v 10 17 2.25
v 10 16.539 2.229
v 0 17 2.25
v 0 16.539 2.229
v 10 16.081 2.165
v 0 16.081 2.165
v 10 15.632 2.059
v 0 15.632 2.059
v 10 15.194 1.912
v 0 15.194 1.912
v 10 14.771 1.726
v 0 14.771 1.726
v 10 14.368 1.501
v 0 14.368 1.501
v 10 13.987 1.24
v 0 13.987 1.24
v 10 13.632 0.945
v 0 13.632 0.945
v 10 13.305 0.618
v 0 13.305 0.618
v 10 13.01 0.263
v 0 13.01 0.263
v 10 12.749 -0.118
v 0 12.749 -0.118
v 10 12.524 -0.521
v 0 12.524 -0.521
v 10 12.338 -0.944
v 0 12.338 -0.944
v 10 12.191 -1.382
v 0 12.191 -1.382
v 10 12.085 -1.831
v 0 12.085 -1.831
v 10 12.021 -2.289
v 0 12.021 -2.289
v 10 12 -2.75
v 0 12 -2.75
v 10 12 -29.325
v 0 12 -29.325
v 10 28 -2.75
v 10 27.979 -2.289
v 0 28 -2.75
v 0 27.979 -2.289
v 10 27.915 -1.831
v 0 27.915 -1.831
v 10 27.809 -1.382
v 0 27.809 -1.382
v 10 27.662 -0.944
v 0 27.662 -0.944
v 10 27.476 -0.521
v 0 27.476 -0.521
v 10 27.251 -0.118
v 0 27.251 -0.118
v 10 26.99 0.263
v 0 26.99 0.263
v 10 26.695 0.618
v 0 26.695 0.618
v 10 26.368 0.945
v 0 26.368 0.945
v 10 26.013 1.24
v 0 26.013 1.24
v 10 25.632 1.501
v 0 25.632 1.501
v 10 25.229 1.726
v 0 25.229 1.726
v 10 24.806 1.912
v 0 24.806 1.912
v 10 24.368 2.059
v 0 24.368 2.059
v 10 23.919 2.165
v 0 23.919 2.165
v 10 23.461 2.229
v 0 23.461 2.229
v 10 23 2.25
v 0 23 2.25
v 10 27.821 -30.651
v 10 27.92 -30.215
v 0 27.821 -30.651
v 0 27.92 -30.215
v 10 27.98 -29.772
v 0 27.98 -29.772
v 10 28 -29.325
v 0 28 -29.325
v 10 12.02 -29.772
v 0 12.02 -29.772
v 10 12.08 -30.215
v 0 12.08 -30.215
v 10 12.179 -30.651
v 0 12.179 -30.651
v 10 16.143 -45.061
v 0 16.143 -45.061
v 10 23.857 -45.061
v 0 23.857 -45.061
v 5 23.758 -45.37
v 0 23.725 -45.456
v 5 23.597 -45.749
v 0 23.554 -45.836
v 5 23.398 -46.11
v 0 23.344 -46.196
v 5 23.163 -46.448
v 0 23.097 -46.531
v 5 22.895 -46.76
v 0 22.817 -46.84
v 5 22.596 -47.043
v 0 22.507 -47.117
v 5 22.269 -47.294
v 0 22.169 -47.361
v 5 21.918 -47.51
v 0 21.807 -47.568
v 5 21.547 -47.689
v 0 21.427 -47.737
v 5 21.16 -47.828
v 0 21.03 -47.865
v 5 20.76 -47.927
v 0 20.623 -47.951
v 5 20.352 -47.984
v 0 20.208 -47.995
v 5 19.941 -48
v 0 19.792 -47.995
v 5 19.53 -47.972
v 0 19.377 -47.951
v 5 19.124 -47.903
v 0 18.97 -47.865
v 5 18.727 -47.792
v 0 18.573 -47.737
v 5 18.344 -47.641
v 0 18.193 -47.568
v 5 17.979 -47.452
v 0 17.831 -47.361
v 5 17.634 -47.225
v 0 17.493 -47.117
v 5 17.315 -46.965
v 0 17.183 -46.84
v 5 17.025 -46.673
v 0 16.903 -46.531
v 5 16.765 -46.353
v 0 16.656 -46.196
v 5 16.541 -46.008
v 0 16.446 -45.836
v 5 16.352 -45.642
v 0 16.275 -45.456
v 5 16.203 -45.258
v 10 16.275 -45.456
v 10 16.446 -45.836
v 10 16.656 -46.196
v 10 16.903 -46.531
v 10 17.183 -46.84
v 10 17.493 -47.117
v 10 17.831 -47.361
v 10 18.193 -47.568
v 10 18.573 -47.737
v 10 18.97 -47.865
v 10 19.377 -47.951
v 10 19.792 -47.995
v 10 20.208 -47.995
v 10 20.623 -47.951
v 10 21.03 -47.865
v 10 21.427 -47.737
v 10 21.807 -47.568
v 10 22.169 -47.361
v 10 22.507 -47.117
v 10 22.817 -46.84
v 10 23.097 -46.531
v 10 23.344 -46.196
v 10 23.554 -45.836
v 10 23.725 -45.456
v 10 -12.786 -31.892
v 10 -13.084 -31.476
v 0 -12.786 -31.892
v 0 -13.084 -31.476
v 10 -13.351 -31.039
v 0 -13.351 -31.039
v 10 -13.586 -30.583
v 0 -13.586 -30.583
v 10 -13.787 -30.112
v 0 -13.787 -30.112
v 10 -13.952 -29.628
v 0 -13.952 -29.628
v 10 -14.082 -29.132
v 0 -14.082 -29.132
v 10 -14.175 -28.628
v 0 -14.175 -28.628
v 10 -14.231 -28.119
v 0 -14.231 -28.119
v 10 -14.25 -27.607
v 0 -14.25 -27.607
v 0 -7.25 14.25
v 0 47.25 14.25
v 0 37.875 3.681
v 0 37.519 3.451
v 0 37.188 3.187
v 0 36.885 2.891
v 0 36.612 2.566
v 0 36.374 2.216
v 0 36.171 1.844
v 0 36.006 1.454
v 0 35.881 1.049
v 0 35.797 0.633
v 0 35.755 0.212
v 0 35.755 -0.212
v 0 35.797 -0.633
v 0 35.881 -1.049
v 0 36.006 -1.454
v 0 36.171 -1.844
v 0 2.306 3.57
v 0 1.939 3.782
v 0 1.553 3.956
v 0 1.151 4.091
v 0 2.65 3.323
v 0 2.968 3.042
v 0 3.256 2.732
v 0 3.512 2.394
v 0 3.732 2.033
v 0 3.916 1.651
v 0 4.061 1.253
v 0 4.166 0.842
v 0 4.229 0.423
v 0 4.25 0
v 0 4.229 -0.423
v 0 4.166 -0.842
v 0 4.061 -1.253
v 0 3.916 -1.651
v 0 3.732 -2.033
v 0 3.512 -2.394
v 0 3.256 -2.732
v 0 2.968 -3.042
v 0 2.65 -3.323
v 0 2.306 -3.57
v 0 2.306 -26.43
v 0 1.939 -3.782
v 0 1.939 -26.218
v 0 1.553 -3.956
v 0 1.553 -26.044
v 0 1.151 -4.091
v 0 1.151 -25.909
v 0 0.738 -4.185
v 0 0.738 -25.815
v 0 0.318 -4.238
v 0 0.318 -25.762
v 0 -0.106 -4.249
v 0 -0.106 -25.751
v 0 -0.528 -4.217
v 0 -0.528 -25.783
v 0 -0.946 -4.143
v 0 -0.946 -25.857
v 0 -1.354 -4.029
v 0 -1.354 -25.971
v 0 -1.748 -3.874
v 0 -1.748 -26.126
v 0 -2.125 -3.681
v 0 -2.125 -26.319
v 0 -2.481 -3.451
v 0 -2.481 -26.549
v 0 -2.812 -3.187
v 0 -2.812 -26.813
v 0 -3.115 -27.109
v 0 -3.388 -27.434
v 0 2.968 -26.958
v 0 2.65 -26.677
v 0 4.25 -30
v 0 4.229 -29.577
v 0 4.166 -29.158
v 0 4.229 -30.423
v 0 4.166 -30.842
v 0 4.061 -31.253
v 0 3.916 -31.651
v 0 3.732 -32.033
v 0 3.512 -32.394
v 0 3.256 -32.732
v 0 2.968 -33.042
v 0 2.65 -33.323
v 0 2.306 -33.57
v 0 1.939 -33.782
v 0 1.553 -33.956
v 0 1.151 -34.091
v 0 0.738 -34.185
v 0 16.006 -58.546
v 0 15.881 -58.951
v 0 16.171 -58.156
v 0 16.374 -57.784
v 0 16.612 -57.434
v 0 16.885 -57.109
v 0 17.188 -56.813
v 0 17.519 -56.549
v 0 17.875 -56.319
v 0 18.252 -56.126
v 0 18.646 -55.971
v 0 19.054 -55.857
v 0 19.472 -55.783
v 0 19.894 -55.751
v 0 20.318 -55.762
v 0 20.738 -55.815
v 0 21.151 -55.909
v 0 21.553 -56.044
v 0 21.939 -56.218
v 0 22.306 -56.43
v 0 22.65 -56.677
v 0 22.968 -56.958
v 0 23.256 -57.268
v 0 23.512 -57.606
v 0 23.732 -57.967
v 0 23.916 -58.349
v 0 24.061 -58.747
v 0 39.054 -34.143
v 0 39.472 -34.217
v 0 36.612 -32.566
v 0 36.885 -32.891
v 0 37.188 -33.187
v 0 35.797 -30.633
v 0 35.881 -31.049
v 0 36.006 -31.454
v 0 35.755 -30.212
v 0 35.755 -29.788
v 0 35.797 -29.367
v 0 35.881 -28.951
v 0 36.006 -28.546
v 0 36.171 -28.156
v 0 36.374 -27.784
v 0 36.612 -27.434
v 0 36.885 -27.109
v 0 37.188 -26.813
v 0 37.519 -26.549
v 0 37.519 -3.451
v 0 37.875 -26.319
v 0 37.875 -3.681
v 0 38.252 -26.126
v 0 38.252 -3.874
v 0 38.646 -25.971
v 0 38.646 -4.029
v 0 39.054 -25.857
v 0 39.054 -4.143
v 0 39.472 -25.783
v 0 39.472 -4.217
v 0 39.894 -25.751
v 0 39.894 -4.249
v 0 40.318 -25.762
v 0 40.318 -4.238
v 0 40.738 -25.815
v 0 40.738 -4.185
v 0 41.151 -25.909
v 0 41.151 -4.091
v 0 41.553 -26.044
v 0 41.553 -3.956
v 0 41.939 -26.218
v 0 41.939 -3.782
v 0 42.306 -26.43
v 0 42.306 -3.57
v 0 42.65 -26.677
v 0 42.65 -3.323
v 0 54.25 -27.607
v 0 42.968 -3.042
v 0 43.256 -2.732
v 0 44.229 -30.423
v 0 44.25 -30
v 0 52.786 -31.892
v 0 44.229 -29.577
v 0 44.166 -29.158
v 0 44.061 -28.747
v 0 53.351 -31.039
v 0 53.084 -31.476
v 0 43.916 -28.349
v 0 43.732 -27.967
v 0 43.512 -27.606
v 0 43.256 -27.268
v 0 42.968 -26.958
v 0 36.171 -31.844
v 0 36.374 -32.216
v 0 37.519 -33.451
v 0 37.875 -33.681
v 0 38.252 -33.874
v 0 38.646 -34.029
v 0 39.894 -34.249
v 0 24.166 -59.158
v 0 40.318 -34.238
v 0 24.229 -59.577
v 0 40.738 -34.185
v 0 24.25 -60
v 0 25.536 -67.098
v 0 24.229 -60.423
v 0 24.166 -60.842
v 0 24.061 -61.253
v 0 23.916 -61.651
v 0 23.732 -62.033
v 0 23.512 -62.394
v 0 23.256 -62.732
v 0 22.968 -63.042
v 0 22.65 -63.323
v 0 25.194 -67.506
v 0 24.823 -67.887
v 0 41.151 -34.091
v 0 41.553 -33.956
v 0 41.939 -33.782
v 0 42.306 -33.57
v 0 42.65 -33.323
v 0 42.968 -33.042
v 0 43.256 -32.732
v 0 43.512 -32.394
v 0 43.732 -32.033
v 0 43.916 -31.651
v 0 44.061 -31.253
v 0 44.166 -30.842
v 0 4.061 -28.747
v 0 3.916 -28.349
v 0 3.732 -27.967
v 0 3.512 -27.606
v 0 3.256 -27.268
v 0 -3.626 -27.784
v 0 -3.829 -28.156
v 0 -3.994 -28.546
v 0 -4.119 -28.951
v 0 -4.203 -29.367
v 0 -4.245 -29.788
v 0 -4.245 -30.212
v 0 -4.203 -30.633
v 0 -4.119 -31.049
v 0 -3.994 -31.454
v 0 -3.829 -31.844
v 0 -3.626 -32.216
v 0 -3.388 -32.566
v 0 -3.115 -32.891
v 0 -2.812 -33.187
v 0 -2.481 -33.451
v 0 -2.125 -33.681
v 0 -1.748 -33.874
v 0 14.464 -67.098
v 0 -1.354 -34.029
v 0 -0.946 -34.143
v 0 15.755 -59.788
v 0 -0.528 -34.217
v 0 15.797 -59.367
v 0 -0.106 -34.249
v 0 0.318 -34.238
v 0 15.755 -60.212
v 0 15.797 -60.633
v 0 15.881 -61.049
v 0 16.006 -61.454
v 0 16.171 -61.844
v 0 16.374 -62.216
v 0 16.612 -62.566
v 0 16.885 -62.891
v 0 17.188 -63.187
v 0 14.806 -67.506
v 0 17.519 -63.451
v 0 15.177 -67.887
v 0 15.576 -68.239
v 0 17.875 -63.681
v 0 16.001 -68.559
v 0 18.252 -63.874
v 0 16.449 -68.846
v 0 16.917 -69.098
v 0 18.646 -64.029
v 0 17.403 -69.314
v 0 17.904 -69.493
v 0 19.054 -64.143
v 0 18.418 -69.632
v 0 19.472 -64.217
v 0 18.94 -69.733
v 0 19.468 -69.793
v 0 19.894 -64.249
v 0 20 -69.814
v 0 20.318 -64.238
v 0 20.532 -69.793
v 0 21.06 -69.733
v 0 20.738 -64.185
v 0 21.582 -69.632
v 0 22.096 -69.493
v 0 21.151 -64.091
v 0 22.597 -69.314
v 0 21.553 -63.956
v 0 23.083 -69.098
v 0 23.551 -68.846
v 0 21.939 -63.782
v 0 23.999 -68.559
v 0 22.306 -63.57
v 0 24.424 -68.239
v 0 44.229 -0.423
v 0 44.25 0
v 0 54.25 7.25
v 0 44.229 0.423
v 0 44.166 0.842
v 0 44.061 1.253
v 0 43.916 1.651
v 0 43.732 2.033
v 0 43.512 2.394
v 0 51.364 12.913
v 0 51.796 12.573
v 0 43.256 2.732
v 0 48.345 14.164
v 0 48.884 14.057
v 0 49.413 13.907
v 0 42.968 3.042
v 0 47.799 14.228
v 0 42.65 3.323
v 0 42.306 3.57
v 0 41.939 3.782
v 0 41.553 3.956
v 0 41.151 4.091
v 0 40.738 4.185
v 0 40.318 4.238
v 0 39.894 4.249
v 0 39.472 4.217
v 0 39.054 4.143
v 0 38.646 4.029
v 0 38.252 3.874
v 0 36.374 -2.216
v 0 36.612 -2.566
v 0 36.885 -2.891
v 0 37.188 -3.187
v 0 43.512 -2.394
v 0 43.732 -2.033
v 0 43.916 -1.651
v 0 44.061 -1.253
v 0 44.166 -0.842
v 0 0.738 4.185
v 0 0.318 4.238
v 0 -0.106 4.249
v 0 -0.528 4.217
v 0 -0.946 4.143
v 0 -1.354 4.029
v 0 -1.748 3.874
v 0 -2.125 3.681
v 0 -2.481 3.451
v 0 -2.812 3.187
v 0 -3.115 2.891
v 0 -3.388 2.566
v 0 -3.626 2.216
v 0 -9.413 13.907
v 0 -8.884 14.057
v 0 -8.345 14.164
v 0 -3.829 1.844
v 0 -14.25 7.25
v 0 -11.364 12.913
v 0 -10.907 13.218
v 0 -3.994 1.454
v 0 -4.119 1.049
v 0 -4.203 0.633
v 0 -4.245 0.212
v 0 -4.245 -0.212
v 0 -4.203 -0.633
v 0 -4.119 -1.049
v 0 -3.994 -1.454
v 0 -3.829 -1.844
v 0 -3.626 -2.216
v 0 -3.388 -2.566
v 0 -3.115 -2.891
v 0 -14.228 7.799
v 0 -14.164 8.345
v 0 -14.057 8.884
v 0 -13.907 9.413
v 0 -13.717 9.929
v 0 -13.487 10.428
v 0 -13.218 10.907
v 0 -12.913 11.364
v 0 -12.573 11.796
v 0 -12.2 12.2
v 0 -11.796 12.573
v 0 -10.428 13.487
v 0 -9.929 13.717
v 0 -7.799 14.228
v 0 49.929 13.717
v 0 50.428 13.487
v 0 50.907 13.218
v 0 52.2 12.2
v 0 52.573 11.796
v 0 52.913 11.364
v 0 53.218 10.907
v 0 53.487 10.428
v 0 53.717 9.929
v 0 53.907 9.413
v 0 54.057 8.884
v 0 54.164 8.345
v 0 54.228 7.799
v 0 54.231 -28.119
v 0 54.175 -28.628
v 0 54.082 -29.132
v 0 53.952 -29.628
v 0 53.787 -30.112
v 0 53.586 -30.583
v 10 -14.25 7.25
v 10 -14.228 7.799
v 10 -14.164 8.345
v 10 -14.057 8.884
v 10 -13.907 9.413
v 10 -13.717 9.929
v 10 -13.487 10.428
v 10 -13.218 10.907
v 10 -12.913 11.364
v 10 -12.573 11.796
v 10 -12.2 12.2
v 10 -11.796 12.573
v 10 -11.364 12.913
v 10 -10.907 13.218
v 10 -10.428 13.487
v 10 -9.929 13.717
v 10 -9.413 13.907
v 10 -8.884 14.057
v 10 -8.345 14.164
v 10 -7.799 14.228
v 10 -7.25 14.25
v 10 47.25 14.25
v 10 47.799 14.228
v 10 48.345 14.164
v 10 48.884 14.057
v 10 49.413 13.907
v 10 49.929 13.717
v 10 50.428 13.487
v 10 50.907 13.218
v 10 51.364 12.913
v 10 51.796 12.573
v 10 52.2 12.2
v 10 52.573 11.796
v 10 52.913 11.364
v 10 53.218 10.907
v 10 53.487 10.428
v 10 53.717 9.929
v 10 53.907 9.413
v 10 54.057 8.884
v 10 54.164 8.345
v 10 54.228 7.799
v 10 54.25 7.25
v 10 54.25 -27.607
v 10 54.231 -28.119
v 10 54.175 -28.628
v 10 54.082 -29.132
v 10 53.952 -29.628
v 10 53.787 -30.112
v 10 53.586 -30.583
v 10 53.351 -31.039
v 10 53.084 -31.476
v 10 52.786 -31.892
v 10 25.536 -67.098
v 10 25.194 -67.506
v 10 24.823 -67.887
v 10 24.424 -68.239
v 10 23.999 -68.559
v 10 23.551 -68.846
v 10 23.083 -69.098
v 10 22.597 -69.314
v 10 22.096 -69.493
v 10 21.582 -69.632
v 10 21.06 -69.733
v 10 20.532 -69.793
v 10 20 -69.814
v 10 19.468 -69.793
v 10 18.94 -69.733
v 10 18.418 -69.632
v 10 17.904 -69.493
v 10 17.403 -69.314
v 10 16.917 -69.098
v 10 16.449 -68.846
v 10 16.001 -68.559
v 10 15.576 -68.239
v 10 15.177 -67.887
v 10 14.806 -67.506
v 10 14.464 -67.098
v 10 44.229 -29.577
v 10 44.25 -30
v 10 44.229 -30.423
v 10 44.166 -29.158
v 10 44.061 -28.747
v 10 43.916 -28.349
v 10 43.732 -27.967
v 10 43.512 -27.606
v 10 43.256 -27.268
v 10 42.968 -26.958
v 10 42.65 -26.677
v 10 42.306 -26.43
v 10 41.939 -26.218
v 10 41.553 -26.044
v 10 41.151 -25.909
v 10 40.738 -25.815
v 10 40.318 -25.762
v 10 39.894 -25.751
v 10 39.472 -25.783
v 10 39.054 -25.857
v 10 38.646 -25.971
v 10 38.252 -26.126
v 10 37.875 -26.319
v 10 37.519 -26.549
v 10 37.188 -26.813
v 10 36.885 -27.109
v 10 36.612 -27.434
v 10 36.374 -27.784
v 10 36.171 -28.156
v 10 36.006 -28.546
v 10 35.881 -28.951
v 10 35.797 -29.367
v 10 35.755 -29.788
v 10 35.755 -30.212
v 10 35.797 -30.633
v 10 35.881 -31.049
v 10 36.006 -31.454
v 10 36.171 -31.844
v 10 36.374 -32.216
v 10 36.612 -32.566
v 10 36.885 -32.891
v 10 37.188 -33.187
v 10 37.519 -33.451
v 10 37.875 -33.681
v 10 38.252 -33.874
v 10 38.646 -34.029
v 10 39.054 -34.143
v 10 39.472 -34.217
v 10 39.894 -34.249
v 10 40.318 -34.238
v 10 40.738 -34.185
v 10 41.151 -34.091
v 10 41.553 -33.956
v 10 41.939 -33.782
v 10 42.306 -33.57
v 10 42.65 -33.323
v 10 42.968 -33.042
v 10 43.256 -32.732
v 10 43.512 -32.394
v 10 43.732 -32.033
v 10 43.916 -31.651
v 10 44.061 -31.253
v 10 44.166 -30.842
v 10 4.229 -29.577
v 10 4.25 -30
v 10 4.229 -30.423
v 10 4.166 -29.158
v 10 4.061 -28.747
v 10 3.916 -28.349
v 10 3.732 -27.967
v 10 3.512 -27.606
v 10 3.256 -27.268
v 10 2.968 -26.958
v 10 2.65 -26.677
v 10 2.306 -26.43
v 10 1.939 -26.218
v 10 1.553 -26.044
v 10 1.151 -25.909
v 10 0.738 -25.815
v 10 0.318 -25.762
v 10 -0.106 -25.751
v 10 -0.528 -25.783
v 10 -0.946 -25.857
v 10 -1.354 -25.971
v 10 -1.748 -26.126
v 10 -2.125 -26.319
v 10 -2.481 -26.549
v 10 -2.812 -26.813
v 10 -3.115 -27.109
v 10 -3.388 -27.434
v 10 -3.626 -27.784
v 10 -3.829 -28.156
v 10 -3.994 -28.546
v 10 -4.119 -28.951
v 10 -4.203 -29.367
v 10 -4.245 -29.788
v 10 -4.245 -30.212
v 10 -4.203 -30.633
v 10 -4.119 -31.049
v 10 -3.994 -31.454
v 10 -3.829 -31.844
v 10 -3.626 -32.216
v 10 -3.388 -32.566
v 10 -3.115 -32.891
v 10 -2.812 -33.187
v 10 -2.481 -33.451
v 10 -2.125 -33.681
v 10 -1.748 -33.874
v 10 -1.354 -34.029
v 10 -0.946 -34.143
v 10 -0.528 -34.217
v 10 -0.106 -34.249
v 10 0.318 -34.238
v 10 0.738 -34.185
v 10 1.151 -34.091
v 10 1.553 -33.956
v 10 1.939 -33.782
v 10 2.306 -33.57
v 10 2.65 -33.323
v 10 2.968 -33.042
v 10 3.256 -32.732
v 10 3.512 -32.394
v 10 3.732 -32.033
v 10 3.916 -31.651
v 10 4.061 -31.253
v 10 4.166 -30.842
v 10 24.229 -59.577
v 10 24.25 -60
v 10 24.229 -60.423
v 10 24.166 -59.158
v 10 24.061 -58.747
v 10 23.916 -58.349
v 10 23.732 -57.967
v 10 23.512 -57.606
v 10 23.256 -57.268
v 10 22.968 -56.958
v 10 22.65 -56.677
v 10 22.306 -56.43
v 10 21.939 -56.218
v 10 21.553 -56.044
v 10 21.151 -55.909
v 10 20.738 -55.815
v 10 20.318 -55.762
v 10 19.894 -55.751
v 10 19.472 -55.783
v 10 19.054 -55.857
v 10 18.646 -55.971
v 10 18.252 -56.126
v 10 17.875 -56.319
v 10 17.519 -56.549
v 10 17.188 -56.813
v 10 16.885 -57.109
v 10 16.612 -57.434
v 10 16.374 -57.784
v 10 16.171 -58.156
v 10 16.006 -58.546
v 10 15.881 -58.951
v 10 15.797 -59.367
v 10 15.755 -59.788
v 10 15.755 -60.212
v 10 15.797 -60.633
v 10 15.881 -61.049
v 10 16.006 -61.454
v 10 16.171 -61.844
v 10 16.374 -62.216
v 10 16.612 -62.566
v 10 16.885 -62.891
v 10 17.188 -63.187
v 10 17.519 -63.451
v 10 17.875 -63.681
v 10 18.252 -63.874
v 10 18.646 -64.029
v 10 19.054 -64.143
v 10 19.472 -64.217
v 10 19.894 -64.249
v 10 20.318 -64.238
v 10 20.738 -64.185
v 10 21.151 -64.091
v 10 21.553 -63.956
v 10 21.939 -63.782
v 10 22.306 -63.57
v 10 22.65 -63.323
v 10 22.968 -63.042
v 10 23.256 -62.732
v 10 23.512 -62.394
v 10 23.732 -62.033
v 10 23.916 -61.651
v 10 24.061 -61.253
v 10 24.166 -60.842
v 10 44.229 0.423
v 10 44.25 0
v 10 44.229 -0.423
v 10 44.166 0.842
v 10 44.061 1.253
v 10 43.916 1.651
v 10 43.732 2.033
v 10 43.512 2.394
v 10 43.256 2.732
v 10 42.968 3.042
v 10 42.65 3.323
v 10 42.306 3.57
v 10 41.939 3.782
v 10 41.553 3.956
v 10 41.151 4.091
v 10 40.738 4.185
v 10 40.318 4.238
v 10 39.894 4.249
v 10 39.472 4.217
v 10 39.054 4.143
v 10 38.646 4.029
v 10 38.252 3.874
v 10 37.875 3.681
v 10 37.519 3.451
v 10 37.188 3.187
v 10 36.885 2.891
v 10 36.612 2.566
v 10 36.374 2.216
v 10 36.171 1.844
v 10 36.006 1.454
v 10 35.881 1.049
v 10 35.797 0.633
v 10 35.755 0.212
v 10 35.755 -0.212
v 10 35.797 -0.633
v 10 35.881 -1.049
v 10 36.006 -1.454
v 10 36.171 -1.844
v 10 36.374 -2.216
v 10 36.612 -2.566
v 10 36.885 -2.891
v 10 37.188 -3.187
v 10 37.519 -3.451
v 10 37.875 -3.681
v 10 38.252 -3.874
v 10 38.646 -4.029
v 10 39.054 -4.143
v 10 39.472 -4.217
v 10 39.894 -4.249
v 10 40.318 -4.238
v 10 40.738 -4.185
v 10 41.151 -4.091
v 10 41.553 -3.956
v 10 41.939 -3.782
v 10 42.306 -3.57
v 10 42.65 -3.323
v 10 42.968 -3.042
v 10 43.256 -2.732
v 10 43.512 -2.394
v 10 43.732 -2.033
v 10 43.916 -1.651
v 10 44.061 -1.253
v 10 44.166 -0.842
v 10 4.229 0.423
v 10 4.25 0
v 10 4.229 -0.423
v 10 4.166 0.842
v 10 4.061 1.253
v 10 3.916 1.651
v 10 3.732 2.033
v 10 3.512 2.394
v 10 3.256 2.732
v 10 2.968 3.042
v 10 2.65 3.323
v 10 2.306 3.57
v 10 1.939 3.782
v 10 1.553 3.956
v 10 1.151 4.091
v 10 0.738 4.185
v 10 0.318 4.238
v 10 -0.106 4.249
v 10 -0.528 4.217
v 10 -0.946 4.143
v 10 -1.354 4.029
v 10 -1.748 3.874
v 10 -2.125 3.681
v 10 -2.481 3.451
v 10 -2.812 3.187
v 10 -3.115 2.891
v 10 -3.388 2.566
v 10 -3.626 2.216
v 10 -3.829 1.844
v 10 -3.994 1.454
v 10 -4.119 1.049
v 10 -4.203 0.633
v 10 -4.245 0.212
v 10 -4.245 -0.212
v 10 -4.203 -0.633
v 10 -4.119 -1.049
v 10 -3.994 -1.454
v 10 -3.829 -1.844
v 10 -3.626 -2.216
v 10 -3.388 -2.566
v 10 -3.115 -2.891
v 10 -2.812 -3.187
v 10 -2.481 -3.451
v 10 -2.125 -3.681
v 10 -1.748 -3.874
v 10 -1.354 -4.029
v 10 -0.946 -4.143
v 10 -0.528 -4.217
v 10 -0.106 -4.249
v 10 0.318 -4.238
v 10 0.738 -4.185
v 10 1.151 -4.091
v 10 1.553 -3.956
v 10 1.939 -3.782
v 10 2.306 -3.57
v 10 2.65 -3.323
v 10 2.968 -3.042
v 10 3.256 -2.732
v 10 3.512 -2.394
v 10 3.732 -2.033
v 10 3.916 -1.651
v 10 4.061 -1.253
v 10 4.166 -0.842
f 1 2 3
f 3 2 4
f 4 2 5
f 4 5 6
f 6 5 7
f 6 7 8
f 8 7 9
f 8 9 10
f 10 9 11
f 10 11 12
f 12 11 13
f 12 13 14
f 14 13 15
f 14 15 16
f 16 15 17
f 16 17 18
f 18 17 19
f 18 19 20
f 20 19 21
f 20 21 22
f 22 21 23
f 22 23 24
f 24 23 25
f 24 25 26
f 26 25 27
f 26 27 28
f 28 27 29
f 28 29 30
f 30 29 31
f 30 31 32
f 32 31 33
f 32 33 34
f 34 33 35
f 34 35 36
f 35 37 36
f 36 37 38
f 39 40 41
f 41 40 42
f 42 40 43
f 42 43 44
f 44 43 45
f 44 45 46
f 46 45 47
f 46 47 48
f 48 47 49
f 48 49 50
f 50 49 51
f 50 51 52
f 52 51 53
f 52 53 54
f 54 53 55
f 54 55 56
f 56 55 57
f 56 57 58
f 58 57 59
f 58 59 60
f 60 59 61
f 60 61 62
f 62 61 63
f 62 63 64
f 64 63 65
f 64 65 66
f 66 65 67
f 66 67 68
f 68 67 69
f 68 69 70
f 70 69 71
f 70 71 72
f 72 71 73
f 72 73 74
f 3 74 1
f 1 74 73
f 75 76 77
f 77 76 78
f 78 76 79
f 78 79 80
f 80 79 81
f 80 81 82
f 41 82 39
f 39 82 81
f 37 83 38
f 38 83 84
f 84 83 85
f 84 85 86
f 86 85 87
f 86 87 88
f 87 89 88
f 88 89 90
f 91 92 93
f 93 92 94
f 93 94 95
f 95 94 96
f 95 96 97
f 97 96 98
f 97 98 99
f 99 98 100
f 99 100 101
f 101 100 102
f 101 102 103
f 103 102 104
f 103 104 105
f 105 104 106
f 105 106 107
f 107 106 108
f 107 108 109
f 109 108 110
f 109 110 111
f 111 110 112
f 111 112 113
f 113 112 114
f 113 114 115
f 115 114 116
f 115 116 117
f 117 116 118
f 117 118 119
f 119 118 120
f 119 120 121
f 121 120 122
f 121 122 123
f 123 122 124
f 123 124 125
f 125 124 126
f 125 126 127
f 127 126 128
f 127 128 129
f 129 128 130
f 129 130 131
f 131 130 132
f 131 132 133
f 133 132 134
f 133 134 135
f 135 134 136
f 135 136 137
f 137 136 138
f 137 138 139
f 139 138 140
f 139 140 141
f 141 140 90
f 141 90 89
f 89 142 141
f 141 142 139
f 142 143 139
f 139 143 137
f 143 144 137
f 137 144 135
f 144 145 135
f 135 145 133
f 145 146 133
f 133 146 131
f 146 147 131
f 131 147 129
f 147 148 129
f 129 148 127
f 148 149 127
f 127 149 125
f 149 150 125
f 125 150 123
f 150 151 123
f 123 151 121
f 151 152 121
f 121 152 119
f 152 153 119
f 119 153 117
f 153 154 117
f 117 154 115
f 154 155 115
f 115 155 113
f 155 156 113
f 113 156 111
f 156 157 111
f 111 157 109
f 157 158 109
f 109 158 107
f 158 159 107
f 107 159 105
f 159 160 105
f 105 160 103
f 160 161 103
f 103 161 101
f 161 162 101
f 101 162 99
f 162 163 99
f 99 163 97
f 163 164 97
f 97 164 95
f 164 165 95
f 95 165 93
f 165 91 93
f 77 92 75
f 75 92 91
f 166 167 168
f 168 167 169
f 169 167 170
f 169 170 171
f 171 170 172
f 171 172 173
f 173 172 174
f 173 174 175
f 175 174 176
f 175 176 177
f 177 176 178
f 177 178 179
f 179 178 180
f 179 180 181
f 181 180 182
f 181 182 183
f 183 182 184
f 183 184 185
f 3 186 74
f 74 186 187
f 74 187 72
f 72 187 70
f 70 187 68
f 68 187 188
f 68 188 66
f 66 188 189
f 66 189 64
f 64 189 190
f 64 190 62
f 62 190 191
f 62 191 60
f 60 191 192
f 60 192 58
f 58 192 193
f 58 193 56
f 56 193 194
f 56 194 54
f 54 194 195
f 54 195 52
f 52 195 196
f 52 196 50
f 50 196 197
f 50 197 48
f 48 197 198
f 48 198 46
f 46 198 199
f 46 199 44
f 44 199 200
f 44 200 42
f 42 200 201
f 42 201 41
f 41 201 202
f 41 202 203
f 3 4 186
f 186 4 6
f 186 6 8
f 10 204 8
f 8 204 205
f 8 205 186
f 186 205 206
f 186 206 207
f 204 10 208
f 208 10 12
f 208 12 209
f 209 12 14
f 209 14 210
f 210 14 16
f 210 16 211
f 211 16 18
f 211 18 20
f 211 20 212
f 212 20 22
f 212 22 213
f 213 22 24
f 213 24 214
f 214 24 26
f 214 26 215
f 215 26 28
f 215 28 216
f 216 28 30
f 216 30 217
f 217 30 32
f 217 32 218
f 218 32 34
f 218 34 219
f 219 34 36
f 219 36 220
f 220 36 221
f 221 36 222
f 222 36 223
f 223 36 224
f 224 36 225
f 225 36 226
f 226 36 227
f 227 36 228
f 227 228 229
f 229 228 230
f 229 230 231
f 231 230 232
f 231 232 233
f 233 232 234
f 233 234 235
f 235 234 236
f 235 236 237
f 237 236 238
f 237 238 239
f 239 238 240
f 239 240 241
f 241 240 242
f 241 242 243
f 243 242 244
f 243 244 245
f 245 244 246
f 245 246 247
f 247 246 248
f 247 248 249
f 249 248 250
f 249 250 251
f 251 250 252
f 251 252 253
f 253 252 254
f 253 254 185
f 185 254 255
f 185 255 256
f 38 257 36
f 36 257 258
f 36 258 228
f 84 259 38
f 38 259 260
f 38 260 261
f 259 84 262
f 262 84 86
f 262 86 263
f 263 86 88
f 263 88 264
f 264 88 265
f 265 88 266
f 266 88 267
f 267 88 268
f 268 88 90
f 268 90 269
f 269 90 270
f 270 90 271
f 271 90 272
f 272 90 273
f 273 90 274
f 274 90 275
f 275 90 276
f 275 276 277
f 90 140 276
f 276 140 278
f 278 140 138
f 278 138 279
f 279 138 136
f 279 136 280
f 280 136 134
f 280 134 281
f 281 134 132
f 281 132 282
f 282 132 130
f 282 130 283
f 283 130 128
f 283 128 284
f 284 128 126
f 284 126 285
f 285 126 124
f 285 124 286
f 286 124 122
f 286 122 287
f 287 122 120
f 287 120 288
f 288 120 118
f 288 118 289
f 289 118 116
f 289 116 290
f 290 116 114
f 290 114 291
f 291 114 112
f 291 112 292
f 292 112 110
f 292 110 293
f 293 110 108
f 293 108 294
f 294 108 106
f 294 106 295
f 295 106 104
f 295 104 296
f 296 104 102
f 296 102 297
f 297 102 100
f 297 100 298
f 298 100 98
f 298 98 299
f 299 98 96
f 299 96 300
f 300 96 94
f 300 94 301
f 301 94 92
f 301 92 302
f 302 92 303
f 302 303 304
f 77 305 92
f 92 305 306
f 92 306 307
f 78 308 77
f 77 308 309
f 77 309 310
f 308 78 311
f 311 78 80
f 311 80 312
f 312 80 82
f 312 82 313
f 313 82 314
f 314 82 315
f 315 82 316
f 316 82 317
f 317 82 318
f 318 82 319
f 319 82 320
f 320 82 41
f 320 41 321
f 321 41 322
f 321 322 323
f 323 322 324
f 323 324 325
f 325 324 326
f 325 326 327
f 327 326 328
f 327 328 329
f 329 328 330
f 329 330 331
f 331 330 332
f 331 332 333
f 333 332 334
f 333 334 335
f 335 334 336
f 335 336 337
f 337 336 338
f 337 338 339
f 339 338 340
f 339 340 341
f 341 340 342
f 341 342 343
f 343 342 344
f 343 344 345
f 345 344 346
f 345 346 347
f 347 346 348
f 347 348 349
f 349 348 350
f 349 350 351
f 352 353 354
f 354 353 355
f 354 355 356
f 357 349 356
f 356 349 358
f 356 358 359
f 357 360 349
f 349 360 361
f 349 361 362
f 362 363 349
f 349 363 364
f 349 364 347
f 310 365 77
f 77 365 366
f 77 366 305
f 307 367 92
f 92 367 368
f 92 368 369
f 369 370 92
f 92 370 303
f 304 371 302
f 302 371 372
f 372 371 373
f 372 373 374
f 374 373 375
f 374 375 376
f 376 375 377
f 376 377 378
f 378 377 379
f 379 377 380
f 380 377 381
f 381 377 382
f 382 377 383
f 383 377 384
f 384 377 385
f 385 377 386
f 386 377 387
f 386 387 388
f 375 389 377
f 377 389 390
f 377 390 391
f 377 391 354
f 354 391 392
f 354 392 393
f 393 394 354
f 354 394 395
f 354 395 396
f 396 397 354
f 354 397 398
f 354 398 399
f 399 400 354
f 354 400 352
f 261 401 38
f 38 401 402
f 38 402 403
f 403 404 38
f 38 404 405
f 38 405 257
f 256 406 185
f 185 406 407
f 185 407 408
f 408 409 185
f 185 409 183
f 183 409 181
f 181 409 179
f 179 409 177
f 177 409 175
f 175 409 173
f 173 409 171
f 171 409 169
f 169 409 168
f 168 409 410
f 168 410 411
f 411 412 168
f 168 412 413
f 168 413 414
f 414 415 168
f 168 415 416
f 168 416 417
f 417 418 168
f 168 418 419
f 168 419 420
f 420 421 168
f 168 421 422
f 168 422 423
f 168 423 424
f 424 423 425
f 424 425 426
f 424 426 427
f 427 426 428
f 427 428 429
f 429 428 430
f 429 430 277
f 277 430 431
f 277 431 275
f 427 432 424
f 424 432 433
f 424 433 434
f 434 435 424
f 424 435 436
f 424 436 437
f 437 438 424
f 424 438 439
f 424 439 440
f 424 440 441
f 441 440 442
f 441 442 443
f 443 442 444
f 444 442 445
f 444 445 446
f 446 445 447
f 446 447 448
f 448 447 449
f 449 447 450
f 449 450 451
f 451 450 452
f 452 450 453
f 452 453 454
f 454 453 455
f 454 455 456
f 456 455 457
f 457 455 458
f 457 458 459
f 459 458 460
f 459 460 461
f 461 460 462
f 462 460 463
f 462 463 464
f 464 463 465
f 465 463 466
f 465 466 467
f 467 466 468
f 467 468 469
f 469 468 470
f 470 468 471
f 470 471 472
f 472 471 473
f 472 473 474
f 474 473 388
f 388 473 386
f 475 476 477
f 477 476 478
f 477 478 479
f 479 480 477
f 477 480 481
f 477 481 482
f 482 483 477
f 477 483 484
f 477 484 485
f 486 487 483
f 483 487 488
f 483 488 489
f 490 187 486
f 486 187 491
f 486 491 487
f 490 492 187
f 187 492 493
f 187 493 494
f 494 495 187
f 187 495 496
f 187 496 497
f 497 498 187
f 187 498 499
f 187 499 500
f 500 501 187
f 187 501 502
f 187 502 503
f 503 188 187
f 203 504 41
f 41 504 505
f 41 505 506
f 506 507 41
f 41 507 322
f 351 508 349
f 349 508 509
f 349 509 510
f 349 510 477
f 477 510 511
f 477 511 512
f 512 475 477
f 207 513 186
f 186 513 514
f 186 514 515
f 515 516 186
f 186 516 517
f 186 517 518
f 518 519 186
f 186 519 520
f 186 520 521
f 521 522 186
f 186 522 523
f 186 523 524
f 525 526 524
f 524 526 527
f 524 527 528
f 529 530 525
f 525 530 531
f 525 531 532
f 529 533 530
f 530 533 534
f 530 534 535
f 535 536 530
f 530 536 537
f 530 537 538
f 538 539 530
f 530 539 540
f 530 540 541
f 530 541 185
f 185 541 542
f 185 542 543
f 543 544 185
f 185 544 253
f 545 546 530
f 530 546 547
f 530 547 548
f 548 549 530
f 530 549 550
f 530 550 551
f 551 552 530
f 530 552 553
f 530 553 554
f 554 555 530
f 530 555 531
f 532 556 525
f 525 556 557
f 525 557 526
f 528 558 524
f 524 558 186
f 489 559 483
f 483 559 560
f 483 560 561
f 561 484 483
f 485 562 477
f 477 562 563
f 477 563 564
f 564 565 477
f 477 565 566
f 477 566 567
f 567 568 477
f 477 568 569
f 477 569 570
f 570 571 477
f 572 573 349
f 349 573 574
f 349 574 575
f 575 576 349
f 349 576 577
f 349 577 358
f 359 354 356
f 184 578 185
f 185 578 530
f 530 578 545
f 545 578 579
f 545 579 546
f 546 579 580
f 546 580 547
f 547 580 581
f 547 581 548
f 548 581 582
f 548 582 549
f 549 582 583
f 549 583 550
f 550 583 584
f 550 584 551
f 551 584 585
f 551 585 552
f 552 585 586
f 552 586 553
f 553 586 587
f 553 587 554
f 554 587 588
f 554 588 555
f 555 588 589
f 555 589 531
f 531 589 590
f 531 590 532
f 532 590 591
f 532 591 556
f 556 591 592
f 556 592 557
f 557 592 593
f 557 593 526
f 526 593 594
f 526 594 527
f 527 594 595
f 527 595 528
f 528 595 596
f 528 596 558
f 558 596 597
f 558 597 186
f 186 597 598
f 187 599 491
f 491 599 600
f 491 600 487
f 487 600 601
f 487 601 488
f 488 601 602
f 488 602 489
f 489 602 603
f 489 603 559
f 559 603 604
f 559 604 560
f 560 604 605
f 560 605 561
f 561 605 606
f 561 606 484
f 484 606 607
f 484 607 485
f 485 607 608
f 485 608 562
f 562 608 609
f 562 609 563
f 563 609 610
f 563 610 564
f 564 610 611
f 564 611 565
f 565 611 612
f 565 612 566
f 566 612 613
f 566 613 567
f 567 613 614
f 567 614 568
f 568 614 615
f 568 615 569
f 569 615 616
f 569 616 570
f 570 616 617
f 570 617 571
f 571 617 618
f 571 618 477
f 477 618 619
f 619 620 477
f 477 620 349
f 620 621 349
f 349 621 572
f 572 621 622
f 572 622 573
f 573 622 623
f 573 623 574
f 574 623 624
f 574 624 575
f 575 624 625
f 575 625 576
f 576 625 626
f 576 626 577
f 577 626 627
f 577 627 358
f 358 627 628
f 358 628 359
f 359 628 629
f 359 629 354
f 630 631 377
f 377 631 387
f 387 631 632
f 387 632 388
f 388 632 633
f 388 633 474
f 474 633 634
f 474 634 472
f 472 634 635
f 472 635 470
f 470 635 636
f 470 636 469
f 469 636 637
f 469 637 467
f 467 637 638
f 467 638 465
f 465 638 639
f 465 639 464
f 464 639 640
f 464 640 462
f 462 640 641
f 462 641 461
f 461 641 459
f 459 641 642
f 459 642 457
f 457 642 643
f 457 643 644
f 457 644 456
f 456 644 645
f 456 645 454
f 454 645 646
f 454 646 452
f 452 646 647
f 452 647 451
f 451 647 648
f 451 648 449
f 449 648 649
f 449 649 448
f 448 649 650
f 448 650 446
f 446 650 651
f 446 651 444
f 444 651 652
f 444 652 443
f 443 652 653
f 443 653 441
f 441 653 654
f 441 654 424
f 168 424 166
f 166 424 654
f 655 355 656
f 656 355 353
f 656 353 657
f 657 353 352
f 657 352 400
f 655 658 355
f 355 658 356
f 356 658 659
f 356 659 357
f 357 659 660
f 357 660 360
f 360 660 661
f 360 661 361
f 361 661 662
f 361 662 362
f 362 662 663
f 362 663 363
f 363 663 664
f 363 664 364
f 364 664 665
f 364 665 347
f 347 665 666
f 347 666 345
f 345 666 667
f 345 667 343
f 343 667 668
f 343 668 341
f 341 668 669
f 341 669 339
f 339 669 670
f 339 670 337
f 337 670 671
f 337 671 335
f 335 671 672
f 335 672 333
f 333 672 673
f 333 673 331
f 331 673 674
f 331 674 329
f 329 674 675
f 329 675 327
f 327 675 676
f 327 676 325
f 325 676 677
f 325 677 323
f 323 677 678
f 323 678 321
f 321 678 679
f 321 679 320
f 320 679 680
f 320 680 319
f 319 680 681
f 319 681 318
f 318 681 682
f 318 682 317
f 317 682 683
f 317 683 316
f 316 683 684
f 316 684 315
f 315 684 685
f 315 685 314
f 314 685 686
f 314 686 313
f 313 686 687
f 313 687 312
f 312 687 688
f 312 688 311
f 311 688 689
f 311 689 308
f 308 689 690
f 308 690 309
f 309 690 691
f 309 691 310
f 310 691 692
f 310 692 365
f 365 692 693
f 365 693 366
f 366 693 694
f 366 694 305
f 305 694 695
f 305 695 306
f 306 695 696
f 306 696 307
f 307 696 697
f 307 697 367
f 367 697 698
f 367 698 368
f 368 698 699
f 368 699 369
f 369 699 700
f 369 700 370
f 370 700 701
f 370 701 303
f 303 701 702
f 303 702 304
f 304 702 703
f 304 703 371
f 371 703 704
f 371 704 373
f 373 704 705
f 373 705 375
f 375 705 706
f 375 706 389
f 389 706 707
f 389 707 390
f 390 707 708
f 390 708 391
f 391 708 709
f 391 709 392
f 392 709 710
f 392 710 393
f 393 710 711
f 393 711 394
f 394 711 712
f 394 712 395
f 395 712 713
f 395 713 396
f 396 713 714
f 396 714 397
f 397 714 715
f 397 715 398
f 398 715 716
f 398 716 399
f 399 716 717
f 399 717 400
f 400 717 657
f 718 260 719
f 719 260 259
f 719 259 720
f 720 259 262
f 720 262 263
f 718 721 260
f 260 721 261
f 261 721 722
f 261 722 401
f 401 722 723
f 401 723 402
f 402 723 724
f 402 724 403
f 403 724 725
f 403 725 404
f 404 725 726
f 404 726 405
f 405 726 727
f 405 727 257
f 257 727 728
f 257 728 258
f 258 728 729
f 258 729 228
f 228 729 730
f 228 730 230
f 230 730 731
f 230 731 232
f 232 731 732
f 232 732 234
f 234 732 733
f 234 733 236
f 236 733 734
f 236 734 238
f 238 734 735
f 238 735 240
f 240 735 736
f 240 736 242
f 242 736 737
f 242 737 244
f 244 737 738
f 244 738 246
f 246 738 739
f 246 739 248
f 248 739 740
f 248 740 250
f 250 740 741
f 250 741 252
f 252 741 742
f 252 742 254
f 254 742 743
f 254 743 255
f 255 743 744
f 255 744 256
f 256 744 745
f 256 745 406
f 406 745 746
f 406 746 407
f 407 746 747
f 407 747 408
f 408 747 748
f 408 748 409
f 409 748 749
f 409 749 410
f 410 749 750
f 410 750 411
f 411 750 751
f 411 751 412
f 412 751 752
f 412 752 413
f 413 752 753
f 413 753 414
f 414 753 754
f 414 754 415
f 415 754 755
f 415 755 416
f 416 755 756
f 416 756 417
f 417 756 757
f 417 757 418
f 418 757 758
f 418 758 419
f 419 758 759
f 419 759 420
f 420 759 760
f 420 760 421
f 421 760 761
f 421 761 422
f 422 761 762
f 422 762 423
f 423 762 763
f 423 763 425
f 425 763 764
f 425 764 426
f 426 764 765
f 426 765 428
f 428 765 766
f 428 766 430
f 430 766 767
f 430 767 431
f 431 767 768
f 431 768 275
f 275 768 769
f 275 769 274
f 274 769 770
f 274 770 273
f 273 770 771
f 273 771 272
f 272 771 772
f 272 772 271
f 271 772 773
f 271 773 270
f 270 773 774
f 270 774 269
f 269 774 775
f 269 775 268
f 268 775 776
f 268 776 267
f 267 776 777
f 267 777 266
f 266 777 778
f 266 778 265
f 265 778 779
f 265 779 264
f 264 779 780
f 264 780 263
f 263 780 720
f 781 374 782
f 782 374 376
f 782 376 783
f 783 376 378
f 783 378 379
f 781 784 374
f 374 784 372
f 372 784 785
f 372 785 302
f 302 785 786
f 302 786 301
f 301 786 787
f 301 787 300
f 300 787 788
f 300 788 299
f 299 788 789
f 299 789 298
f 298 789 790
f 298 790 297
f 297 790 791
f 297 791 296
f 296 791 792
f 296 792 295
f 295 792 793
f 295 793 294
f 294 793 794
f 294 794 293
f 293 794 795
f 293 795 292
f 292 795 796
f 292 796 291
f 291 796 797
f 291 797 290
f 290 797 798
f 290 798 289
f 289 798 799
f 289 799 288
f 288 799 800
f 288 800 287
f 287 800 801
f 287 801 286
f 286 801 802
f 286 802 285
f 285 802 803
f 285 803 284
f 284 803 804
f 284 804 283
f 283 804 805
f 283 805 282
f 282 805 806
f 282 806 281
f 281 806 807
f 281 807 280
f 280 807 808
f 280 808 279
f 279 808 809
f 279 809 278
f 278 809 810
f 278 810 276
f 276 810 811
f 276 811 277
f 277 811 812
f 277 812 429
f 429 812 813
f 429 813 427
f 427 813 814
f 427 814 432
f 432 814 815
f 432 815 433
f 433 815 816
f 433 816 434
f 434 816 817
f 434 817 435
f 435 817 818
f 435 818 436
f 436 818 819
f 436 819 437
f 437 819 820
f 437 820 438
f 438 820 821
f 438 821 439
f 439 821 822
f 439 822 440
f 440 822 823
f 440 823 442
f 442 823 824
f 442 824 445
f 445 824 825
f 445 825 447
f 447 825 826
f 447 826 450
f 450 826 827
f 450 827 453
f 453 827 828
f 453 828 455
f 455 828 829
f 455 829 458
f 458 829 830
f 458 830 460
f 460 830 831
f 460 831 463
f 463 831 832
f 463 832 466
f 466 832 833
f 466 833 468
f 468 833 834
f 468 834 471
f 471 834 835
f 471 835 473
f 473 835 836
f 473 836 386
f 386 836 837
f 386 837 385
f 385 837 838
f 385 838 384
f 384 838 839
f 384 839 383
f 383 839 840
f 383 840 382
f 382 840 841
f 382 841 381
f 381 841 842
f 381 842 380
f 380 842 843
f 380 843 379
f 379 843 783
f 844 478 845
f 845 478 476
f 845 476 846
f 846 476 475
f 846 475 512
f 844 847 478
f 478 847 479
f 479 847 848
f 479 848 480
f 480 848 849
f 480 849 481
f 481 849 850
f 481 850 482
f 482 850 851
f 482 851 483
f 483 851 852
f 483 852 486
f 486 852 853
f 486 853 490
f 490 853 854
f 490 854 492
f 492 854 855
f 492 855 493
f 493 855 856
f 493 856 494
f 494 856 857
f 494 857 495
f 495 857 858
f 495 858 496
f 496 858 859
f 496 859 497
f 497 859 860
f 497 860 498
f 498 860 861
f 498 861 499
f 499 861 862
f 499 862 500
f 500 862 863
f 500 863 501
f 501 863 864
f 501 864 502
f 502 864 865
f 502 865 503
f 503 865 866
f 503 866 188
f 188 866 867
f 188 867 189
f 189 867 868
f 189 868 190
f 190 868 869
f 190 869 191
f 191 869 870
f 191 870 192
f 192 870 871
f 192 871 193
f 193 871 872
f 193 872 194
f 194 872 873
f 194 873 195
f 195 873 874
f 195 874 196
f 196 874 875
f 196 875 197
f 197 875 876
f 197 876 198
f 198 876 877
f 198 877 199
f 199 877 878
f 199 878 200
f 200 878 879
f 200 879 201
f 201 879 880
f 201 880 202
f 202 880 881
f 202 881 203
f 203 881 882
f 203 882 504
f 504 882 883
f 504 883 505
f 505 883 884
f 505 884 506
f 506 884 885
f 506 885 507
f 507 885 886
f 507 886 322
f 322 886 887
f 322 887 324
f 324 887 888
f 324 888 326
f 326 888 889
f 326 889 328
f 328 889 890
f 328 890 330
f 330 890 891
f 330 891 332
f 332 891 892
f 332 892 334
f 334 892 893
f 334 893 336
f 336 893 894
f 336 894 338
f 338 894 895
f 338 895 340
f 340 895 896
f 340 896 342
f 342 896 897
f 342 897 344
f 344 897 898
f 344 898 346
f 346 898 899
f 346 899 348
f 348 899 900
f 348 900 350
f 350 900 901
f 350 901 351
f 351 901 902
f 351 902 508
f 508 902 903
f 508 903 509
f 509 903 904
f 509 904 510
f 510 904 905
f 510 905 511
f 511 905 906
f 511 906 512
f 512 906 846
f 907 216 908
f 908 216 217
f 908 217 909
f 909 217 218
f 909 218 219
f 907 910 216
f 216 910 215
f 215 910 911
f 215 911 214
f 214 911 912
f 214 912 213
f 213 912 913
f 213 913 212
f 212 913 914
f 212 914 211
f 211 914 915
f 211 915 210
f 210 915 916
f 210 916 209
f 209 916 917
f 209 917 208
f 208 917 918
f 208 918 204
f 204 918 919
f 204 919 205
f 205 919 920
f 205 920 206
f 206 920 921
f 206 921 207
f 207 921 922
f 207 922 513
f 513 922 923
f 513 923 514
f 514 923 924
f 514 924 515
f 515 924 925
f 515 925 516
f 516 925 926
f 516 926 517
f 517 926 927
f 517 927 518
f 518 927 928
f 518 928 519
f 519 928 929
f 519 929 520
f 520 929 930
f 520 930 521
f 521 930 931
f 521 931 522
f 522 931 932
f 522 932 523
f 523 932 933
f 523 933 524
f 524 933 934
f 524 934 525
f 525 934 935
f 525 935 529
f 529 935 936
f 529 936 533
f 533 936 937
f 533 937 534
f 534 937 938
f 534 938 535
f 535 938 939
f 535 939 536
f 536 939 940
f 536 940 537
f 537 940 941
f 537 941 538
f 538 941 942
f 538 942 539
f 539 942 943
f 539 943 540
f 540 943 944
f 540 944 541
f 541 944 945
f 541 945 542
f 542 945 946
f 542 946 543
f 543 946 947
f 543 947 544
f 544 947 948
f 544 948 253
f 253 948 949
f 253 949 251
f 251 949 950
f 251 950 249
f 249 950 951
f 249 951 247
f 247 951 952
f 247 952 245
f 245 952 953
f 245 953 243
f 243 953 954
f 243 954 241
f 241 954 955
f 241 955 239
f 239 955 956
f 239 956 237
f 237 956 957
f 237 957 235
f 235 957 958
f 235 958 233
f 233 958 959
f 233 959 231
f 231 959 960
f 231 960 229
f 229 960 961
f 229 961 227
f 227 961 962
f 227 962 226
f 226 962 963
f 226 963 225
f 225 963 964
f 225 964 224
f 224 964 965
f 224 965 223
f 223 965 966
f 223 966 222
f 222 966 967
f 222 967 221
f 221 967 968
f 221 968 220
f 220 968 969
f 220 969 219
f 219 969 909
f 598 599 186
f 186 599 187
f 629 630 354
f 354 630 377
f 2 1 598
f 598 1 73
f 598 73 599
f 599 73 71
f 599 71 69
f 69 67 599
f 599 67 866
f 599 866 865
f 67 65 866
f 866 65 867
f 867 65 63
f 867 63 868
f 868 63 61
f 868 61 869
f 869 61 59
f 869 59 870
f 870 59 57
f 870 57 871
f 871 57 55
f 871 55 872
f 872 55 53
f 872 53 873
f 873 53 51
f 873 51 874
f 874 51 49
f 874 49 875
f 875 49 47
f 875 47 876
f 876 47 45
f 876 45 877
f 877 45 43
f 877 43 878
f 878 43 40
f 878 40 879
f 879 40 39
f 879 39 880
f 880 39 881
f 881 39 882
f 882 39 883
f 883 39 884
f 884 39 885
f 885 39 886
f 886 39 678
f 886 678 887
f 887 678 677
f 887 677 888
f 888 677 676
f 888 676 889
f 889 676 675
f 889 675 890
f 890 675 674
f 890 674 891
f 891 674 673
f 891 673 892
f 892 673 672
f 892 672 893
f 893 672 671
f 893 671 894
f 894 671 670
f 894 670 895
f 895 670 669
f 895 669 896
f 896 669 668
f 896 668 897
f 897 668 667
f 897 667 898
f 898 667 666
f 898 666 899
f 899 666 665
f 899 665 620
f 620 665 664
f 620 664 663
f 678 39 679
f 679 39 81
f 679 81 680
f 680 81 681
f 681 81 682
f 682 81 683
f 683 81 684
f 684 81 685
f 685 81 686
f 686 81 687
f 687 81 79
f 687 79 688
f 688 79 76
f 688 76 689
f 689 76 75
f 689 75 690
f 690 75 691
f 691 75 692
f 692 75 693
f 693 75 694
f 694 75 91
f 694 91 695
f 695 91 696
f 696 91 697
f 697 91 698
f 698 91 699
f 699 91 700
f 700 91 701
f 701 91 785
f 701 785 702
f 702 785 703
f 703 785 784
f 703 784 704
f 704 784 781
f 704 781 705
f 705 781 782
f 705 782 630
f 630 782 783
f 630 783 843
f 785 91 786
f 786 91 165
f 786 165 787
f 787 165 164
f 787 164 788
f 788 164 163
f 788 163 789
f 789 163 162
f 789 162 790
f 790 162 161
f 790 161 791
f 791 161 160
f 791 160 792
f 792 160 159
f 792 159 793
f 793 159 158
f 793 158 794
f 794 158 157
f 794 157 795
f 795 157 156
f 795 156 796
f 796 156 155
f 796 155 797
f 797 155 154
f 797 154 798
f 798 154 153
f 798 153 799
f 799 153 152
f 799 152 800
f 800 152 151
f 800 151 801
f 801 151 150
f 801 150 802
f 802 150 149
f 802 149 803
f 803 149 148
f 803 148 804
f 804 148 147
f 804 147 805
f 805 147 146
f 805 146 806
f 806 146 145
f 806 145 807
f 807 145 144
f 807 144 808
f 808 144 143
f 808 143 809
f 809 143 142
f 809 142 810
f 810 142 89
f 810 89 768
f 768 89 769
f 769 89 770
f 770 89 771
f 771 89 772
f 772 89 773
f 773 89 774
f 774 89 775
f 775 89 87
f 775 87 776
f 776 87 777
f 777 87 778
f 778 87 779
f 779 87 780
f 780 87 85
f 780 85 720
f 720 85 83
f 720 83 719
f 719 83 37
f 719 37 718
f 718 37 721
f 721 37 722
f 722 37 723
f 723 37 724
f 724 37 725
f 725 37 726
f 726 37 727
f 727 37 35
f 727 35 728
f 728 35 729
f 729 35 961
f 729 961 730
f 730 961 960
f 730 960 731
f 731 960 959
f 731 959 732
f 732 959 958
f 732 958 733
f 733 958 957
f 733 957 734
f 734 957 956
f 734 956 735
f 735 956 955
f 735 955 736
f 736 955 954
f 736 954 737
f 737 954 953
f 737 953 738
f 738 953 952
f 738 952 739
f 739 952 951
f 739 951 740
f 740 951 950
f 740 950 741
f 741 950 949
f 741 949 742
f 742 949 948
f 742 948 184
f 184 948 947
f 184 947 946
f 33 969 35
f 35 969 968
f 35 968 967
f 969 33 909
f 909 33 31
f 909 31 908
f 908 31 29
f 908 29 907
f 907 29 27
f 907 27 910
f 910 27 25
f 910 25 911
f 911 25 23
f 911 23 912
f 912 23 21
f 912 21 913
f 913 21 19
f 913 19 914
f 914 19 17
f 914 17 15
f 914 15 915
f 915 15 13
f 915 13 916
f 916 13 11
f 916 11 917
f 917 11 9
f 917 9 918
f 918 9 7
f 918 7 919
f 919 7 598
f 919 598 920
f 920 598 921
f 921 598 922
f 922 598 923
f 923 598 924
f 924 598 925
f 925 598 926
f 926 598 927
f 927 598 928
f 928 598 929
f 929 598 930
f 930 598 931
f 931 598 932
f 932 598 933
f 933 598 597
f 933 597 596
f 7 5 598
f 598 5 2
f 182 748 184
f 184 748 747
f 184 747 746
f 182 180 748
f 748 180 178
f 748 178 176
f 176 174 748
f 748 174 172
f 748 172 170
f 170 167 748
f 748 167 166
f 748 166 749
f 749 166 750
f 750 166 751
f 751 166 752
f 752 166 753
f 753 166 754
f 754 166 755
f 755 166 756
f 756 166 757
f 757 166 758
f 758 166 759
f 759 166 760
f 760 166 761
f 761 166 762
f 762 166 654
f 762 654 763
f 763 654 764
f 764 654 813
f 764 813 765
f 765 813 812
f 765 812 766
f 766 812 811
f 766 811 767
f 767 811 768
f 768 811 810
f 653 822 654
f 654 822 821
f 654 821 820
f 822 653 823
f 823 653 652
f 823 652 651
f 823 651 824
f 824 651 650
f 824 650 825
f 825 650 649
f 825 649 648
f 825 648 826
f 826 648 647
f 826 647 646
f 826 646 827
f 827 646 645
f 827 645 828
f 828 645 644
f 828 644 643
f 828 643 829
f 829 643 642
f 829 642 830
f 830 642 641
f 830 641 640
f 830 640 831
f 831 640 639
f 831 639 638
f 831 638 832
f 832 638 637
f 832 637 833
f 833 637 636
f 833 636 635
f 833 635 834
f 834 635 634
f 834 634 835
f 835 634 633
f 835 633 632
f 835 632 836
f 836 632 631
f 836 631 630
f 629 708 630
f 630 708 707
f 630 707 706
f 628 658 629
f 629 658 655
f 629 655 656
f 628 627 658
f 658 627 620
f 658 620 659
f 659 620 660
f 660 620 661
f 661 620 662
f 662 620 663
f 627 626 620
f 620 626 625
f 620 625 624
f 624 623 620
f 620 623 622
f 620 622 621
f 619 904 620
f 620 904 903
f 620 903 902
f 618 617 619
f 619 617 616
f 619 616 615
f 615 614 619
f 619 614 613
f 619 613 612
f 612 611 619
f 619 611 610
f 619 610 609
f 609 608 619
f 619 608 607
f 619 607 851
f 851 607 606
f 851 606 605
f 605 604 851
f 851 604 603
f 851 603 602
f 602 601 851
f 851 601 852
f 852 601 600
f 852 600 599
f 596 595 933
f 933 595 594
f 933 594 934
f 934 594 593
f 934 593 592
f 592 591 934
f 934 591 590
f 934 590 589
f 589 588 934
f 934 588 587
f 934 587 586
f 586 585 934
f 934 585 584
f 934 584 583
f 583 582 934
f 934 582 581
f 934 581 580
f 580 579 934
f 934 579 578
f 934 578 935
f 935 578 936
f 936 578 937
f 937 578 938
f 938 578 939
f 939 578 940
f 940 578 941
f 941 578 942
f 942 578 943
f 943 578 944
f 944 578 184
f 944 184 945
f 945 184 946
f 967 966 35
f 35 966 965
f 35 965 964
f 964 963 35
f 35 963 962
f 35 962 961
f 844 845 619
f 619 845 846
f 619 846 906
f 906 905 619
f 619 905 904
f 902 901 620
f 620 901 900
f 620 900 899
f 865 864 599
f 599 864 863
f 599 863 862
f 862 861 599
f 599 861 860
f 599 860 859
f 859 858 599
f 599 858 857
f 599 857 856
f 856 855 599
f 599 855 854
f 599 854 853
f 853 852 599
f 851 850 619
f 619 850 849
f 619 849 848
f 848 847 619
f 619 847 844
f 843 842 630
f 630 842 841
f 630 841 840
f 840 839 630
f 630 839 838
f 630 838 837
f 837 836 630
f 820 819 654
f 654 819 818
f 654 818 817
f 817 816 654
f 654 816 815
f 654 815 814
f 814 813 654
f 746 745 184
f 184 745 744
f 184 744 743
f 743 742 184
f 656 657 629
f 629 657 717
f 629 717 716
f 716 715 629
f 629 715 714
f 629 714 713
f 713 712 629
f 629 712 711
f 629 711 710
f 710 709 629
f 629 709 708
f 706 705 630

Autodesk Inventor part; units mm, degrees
ref_plane "YZ Plane" through (0, 0, 0) normal (1, 0, 0) x (0, 1, 0)
ref_plane "XZ Plane" through (0, 0, 0) normal (0, 1, 0) x (-1, 0, 0)
ref_plane "XY Plane" through (0, 0, 0) normal (0, 0, 1) x (1, 0, 0)
sketch "Sketch1" plane through (0, 0, 0) normal (1, 0, 0) x (0, 1, 0)
  circle A0 centre (0, 0) radius 4.25
  circle A1 centre (40, 0) radius 4.25
  circle A2 centre (40, -30) radius 4.25
  circle A3 centre (0, -30) radius 4.25
  circle A4 centre (20, -60) radius 4.25
  line L0 (54.25, 0) -> (54.25, -30)
  line L1 (20, -74.25) -> (54.25, -30)
  line L2 (-14.25, -30) -> (20, -74.25)
  line L3 (-14.25, -30) -> (-14.25, 0)
  line L4 (0, 14.25) -> (54.25, 14.25)
  line L5 (54.25, 14.25) -> (-14.25, 14.25)
  line L6 (-14.25, 14.25) -> (-14.25, 0)
  line L7 (54.25, 14.25) -> (54.25, 0)
  dimension "d6" = 8.5
  dimension "d9" = 8.5
  dimension "d10" = 14.25
  dimension "d11" = 14.25
  dimension "d13" = 14.25
extrude "Extrusion1" add sketch "Sketch1" along normal blind 10
fillet "Fillet1" radius 7 5 edges at (5, 20, -74.25) (5, 54.25, -30) (5, 54.25, 14.25) (5, -14.25, 14.25) (5, -14.25, -30)
sketch "Sketch2" plane through (10, 0, 0) normal (1, 0, 0) x (0, 0, -1)
  circle A0 centre (0, 40) radius 4.25 projected
  line L0 (0, 28) -> (30, 28)
  line L1 (0, 0) -> (0, 12)
  line L2 (0, 12) -> (30, 12)
  circle A1 centre (60, 20) radius 4.25 projected
  arc A2 (45.061, 16.1433) -> (45.061, 23.8567) centre (44, 20) ccw
  line L3 (30, 28) -> (45.061, 23.8567)
  line L4 (30, 12) -> (45.061, 16.1433)
  line L5 (-14.25, 47.25) -> (-14.25, -7.25) projected
  line L6 (-2.25, 28) -> (0, 28)
  line L7 (-2.25, 28) -> (-2.25, 12)
  line L8 (-2.25, 12) -> (0, 12)
extrude "Extrusion2" cut sketch "Sketch2" against normal up to surface (10 mm away) contours L0 L3 A2 L4 L2 L8 L7 L6
fillet "Fillet2" radius 5 4 edges at (5, 12, -30) (5, 28, -30) (5, 28, 2.25) (5, 12, 2.25)
properties part number "din_motor_connector"
